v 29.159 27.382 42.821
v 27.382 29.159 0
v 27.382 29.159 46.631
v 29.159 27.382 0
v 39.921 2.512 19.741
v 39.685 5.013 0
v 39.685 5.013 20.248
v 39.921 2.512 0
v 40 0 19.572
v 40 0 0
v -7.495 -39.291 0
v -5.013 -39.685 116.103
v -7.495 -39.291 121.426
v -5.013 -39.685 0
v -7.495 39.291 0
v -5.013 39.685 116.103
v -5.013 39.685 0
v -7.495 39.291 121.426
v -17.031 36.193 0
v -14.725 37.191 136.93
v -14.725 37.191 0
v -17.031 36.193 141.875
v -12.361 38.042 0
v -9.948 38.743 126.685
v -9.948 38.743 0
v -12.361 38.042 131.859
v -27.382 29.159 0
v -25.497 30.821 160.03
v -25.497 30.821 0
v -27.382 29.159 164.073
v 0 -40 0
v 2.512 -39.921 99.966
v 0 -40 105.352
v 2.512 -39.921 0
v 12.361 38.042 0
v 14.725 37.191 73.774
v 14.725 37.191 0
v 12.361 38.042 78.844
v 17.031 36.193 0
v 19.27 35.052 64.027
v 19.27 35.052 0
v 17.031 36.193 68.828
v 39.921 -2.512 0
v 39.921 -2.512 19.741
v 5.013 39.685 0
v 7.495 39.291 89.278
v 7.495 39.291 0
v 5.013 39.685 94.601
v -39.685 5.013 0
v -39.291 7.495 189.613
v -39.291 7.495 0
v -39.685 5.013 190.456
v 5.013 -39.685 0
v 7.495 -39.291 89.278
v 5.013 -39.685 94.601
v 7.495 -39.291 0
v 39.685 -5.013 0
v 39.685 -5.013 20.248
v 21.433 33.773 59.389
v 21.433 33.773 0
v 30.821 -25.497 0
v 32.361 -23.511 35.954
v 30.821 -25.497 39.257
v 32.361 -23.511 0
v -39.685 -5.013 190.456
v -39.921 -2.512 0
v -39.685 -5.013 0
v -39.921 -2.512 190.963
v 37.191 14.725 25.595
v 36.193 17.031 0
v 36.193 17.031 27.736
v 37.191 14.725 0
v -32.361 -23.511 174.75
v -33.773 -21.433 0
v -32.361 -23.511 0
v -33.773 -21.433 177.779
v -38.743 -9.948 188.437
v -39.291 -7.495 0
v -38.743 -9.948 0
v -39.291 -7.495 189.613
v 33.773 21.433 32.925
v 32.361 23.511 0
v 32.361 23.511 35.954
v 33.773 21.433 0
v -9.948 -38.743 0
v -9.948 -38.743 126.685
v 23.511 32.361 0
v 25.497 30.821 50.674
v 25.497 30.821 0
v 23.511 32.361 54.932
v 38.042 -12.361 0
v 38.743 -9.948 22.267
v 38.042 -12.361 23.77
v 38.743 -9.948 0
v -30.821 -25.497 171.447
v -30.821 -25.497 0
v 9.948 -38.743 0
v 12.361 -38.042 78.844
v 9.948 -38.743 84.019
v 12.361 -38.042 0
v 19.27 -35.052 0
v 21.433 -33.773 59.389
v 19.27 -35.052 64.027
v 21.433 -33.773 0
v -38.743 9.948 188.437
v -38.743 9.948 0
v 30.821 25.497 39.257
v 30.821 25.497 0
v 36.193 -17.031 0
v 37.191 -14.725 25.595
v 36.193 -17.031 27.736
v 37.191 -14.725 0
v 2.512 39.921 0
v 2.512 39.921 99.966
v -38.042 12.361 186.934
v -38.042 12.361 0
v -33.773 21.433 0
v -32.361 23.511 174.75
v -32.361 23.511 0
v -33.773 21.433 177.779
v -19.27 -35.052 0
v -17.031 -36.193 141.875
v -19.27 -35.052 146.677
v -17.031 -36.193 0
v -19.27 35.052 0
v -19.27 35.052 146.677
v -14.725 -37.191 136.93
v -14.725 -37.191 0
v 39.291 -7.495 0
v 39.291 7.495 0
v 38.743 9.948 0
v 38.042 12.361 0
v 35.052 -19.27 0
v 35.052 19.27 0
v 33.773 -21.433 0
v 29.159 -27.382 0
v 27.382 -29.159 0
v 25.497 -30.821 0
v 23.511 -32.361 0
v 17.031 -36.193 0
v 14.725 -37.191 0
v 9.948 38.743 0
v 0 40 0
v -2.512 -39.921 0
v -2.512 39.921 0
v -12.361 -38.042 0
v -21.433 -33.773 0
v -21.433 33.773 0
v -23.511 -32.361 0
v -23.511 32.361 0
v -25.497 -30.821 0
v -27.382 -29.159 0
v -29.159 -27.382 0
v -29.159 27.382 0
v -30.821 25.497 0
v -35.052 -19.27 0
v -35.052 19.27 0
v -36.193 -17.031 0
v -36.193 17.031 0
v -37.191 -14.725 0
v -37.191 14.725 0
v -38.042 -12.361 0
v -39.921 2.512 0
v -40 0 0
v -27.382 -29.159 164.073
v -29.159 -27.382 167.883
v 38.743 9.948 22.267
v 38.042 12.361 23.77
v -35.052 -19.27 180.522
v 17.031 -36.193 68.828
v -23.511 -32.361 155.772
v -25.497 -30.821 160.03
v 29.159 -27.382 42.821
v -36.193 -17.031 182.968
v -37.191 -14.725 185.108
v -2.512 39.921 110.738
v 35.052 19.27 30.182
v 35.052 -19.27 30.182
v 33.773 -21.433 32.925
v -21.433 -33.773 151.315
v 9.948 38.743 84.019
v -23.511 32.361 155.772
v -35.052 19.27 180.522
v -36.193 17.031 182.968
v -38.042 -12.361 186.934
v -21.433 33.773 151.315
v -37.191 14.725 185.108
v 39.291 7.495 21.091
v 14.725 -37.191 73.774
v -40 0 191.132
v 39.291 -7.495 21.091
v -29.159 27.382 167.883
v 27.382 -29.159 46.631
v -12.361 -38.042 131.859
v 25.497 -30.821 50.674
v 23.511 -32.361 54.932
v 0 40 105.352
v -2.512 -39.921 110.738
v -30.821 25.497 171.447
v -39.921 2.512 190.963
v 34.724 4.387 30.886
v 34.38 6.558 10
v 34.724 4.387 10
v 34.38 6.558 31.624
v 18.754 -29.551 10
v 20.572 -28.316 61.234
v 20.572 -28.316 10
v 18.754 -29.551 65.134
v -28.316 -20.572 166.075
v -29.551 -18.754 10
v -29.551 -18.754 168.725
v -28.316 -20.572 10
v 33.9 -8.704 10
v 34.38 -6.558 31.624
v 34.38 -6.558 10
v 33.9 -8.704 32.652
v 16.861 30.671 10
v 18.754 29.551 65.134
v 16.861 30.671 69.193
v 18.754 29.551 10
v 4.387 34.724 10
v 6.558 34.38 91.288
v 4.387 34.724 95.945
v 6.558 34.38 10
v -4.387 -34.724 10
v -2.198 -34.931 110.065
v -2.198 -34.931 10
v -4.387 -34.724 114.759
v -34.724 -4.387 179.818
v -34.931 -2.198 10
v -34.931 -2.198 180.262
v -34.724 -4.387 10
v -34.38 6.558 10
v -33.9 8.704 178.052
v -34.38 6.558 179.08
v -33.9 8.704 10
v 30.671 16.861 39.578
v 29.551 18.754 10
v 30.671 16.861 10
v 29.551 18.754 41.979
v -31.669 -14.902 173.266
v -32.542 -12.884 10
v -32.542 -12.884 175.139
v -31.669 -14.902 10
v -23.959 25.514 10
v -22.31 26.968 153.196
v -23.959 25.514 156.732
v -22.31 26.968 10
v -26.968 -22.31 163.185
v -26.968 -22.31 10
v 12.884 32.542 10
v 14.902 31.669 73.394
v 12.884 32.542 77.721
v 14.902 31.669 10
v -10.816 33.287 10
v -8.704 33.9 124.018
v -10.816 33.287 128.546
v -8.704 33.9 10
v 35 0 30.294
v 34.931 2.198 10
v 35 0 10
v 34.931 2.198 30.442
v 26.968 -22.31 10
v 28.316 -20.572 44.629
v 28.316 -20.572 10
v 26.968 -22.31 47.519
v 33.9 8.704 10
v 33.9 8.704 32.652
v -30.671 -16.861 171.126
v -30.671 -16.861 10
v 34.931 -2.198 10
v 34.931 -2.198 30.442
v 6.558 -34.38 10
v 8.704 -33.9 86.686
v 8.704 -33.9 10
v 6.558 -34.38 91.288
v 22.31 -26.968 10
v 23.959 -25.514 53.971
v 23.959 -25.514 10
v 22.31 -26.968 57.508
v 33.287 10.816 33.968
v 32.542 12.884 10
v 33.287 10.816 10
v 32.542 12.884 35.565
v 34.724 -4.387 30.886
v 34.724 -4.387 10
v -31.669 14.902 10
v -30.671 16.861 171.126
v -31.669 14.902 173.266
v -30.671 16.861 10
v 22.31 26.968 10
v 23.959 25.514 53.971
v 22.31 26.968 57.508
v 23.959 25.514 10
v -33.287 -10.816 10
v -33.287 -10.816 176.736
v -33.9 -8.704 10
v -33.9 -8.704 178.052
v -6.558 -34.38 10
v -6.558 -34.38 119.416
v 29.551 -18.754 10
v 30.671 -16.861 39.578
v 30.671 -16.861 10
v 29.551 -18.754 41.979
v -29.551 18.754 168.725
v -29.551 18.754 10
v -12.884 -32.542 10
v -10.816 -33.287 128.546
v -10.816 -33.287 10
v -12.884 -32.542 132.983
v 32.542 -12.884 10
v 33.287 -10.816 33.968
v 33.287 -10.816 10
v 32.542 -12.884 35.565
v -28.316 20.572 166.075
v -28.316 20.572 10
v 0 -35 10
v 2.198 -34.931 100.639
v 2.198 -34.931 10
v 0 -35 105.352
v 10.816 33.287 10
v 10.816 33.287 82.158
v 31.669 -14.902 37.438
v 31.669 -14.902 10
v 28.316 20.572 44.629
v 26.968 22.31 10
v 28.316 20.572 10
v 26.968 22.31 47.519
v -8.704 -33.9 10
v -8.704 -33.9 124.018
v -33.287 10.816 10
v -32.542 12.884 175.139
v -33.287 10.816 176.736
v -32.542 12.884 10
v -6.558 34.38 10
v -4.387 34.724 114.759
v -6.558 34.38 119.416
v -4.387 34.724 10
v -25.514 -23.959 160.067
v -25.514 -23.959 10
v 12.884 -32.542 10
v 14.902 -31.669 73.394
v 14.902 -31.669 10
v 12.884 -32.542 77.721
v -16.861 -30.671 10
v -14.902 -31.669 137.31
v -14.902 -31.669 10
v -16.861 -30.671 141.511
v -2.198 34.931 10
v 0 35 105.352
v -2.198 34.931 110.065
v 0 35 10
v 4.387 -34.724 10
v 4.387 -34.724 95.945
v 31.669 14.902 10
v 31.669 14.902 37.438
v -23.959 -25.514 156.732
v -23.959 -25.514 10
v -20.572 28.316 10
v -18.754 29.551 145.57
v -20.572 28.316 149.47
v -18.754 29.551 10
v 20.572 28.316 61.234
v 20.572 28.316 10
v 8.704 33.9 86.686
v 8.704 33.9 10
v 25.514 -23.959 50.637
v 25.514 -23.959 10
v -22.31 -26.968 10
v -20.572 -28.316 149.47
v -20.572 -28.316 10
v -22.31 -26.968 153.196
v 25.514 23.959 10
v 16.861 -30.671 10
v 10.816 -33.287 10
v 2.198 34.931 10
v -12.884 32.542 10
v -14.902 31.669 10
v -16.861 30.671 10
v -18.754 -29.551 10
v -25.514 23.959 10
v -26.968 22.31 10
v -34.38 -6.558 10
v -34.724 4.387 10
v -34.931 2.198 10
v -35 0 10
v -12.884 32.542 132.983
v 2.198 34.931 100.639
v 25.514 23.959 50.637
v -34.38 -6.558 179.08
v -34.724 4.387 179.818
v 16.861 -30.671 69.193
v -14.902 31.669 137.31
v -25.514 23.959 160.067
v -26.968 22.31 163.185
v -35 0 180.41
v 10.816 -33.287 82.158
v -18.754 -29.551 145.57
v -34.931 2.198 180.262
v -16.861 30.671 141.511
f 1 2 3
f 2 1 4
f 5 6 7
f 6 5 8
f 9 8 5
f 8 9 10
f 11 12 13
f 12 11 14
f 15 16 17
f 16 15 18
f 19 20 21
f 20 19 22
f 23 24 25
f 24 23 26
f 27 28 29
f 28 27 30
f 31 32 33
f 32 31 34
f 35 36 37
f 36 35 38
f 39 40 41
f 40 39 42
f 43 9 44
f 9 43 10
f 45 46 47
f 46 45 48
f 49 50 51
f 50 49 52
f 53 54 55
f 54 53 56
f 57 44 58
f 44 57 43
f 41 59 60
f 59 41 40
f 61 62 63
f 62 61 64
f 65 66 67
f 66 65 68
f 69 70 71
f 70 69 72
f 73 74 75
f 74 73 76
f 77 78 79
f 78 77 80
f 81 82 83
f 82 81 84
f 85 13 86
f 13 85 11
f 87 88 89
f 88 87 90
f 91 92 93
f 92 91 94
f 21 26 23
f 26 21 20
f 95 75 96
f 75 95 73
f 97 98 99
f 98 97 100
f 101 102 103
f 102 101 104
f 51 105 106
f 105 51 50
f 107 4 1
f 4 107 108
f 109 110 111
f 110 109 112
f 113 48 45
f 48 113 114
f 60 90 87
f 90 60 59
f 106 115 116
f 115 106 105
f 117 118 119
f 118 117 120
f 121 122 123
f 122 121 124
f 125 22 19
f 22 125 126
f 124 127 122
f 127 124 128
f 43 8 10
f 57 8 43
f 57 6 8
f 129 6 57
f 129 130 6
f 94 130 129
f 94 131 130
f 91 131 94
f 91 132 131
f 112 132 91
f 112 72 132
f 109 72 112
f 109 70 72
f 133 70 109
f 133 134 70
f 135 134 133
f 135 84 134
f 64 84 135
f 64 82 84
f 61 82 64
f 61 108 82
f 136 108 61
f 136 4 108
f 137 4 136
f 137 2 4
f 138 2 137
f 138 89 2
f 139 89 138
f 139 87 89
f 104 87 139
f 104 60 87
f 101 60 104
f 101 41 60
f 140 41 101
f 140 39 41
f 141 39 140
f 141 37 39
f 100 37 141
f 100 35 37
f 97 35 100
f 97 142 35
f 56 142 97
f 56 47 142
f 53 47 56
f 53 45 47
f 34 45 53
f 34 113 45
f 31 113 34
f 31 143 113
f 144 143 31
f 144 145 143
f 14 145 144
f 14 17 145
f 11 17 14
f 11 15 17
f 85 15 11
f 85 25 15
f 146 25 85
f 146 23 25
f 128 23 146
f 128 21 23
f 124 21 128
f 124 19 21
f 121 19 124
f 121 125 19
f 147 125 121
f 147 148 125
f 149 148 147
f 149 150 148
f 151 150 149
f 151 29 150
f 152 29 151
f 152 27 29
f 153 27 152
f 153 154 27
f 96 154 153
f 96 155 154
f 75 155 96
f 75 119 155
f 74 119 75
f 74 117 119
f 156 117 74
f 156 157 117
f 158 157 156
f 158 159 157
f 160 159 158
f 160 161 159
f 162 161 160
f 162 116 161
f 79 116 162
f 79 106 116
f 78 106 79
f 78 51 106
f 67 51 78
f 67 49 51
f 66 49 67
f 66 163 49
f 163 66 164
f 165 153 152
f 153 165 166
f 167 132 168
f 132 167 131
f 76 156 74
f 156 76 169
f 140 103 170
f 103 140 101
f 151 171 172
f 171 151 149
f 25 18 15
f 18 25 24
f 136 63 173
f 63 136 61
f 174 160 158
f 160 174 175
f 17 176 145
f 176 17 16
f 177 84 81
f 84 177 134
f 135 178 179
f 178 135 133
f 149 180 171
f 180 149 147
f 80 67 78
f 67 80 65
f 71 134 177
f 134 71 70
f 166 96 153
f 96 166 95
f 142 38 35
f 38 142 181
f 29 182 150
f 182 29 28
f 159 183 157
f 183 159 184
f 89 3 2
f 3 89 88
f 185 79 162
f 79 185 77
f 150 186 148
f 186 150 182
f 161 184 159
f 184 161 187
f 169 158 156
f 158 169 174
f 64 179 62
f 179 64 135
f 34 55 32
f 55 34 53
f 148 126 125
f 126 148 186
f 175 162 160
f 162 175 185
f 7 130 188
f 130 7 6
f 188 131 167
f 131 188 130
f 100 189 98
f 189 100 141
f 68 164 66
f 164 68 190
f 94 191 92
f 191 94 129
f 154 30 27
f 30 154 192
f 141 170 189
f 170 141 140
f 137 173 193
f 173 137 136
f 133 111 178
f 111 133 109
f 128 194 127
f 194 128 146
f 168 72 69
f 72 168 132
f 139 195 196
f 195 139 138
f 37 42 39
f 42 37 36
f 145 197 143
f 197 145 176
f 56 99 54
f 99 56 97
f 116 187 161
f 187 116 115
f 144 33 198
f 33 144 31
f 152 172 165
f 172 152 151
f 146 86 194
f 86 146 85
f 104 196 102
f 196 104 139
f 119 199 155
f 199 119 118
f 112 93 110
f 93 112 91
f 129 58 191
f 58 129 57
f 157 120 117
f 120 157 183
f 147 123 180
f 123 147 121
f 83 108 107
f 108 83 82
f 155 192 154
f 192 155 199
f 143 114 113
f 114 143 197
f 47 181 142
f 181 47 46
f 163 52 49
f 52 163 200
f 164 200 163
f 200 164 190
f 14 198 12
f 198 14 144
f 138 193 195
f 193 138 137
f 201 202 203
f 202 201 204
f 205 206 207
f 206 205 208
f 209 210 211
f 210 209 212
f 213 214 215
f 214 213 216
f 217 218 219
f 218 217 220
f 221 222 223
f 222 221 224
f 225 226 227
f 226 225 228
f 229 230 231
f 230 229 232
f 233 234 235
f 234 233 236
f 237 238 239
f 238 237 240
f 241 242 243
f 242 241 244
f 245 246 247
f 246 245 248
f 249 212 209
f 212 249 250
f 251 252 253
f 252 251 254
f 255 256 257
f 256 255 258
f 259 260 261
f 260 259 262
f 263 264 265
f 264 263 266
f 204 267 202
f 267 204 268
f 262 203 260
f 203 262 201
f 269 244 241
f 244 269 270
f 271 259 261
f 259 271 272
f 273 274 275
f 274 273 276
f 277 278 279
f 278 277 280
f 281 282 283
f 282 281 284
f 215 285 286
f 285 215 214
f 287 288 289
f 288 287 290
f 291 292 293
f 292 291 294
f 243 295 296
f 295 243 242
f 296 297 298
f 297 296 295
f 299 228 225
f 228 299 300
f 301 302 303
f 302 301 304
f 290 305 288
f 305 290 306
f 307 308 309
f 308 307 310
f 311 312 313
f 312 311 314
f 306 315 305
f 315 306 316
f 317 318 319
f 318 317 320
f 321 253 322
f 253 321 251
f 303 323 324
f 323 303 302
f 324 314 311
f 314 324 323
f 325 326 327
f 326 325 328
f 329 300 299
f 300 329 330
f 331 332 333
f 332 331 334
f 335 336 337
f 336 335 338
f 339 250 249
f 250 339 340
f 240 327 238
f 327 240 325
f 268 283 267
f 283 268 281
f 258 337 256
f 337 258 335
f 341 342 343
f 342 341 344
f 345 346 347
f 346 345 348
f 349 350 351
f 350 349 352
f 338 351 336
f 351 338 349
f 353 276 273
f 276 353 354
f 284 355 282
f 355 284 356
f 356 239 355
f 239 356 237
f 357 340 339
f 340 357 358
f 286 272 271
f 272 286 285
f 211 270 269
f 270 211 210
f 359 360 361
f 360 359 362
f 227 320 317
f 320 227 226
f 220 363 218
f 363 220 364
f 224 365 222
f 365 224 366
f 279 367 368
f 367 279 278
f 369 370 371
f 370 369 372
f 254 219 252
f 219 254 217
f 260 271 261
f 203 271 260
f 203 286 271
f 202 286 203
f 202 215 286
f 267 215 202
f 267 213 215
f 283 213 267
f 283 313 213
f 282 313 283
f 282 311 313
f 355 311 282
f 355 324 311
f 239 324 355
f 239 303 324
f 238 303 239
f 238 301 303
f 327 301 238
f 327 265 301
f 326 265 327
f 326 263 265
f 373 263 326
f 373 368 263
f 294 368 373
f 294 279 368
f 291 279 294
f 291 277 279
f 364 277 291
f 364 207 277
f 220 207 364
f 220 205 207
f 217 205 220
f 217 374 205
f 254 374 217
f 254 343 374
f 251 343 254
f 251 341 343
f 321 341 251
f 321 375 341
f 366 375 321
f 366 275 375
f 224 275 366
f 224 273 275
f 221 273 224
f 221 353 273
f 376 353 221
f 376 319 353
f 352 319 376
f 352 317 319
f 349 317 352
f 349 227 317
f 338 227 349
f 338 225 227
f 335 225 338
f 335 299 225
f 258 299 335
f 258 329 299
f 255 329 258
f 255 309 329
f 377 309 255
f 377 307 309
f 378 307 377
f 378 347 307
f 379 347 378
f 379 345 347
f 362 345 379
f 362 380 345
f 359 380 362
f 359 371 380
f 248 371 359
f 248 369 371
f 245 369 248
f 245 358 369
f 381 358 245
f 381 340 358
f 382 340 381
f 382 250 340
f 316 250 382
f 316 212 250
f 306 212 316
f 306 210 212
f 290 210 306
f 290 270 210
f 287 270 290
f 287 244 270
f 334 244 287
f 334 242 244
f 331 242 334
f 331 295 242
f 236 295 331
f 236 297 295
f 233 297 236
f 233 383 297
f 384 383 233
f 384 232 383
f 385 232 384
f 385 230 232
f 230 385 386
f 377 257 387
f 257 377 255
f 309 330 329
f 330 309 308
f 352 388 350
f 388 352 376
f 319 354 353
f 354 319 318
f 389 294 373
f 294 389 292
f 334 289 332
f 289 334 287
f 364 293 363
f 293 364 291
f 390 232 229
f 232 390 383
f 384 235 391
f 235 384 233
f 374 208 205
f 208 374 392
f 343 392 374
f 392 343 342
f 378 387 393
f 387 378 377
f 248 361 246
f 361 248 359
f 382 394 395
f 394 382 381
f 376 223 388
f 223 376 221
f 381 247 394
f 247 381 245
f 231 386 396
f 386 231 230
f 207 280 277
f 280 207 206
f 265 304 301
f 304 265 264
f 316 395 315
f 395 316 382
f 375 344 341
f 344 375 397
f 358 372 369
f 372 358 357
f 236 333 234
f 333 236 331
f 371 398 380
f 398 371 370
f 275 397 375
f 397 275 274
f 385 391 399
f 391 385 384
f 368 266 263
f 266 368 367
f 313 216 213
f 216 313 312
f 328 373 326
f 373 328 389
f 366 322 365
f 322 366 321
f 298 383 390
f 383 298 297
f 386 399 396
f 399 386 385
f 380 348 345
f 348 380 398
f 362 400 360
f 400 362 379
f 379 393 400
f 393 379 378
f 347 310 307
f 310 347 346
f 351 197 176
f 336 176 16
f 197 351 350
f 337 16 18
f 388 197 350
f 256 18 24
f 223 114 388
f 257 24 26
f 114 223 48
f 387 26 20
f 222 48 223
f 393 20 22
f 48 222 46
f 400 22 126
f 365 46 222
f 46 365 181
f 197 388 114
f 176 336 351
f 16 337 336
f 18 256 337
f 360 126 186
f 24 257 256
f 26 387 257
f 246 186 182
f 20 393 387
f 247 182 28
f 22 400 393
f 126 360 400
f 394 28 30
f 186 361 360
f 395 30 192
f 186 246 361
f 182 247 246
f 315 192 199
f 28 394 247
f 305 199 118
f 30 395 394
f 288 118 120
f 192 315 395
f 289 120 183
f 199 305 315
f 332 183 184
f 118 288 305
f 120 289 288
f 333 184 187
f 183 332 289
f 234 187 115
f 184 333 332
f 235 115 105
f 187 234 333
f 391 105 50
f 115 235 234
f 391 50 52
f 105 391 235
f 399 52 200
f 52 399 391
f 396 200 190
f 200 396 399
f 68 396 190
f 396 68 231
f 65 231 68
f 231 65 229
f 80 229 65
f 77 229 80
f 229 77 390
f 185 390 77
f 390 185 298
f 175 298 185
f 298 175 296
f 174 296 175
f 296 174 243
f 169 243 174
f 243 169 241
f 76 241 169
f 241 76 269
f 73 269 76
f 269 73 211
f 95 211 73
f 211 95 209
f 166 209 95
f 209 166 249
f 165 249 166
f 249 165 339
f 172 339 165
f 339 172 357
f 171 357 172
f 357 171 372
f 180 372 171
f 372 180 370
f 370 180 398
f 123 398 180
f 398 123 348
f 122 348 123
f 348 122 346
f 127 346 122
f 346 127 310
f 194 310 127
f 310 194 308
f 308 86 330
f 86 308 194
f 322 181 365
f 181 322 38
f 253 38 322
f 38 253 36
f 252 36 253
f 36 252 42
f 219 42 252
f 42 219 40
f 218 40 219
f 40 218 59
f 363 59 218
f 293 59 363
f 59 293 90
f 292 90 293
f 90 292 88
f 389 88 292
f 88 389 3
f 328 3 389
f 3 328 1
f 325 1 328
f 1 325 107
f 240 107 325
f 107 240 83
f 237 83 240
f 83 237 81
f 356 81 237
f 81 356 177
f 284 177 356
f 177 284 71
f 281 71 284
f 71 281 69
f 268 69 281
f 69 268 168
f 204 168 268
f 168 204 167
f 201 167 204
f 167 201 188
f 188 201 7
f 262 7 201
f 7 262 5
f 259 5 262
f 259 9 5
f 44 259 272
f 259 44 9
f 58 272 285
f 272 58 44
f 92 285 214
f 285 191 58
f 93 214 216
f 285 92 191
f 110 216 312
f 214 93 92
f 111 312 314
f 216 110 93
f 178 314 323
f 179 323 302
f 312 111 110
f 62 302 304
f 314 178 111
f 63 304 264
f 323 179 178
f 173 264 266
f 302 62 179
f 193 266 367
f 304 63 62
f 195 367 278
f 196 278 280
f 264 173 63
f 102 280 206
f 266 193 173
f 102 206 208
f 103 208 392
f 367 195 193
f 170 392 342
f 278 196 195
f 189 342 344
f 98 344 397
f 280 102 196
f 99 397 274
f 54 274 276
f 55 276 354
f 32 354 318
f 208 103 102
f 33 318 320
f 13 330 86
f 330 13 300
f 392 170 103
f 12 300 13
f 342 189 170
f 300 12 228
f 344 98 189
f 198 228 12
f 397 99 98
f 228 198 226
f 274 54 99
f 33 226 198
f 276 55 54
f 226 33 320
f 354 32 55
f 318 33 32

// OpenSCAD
height = 200;
thickness = 10;
outer_diam = 80;
outer_radius = outer_diam / 2;
inner_diam = outer_diam - thickness;
inner_radius = inner_diam / 2;

difference()
{
    // Main body cylinder.
    cylinder(h = height, r = outer_radius, $fn = 100);
    
    translate([0, 0, thickness])
    {
        // Cut-out.
        cylinder(h = height, r = inner_radius, $fn = 100);
    }
    
    translate([outer_radius - outer_radius, 0, height])
    {
        rotate([0, -155, -180])
        {
            cube([outer_diam,
            outer_diam, 400], center = true);
        }
    }
}
